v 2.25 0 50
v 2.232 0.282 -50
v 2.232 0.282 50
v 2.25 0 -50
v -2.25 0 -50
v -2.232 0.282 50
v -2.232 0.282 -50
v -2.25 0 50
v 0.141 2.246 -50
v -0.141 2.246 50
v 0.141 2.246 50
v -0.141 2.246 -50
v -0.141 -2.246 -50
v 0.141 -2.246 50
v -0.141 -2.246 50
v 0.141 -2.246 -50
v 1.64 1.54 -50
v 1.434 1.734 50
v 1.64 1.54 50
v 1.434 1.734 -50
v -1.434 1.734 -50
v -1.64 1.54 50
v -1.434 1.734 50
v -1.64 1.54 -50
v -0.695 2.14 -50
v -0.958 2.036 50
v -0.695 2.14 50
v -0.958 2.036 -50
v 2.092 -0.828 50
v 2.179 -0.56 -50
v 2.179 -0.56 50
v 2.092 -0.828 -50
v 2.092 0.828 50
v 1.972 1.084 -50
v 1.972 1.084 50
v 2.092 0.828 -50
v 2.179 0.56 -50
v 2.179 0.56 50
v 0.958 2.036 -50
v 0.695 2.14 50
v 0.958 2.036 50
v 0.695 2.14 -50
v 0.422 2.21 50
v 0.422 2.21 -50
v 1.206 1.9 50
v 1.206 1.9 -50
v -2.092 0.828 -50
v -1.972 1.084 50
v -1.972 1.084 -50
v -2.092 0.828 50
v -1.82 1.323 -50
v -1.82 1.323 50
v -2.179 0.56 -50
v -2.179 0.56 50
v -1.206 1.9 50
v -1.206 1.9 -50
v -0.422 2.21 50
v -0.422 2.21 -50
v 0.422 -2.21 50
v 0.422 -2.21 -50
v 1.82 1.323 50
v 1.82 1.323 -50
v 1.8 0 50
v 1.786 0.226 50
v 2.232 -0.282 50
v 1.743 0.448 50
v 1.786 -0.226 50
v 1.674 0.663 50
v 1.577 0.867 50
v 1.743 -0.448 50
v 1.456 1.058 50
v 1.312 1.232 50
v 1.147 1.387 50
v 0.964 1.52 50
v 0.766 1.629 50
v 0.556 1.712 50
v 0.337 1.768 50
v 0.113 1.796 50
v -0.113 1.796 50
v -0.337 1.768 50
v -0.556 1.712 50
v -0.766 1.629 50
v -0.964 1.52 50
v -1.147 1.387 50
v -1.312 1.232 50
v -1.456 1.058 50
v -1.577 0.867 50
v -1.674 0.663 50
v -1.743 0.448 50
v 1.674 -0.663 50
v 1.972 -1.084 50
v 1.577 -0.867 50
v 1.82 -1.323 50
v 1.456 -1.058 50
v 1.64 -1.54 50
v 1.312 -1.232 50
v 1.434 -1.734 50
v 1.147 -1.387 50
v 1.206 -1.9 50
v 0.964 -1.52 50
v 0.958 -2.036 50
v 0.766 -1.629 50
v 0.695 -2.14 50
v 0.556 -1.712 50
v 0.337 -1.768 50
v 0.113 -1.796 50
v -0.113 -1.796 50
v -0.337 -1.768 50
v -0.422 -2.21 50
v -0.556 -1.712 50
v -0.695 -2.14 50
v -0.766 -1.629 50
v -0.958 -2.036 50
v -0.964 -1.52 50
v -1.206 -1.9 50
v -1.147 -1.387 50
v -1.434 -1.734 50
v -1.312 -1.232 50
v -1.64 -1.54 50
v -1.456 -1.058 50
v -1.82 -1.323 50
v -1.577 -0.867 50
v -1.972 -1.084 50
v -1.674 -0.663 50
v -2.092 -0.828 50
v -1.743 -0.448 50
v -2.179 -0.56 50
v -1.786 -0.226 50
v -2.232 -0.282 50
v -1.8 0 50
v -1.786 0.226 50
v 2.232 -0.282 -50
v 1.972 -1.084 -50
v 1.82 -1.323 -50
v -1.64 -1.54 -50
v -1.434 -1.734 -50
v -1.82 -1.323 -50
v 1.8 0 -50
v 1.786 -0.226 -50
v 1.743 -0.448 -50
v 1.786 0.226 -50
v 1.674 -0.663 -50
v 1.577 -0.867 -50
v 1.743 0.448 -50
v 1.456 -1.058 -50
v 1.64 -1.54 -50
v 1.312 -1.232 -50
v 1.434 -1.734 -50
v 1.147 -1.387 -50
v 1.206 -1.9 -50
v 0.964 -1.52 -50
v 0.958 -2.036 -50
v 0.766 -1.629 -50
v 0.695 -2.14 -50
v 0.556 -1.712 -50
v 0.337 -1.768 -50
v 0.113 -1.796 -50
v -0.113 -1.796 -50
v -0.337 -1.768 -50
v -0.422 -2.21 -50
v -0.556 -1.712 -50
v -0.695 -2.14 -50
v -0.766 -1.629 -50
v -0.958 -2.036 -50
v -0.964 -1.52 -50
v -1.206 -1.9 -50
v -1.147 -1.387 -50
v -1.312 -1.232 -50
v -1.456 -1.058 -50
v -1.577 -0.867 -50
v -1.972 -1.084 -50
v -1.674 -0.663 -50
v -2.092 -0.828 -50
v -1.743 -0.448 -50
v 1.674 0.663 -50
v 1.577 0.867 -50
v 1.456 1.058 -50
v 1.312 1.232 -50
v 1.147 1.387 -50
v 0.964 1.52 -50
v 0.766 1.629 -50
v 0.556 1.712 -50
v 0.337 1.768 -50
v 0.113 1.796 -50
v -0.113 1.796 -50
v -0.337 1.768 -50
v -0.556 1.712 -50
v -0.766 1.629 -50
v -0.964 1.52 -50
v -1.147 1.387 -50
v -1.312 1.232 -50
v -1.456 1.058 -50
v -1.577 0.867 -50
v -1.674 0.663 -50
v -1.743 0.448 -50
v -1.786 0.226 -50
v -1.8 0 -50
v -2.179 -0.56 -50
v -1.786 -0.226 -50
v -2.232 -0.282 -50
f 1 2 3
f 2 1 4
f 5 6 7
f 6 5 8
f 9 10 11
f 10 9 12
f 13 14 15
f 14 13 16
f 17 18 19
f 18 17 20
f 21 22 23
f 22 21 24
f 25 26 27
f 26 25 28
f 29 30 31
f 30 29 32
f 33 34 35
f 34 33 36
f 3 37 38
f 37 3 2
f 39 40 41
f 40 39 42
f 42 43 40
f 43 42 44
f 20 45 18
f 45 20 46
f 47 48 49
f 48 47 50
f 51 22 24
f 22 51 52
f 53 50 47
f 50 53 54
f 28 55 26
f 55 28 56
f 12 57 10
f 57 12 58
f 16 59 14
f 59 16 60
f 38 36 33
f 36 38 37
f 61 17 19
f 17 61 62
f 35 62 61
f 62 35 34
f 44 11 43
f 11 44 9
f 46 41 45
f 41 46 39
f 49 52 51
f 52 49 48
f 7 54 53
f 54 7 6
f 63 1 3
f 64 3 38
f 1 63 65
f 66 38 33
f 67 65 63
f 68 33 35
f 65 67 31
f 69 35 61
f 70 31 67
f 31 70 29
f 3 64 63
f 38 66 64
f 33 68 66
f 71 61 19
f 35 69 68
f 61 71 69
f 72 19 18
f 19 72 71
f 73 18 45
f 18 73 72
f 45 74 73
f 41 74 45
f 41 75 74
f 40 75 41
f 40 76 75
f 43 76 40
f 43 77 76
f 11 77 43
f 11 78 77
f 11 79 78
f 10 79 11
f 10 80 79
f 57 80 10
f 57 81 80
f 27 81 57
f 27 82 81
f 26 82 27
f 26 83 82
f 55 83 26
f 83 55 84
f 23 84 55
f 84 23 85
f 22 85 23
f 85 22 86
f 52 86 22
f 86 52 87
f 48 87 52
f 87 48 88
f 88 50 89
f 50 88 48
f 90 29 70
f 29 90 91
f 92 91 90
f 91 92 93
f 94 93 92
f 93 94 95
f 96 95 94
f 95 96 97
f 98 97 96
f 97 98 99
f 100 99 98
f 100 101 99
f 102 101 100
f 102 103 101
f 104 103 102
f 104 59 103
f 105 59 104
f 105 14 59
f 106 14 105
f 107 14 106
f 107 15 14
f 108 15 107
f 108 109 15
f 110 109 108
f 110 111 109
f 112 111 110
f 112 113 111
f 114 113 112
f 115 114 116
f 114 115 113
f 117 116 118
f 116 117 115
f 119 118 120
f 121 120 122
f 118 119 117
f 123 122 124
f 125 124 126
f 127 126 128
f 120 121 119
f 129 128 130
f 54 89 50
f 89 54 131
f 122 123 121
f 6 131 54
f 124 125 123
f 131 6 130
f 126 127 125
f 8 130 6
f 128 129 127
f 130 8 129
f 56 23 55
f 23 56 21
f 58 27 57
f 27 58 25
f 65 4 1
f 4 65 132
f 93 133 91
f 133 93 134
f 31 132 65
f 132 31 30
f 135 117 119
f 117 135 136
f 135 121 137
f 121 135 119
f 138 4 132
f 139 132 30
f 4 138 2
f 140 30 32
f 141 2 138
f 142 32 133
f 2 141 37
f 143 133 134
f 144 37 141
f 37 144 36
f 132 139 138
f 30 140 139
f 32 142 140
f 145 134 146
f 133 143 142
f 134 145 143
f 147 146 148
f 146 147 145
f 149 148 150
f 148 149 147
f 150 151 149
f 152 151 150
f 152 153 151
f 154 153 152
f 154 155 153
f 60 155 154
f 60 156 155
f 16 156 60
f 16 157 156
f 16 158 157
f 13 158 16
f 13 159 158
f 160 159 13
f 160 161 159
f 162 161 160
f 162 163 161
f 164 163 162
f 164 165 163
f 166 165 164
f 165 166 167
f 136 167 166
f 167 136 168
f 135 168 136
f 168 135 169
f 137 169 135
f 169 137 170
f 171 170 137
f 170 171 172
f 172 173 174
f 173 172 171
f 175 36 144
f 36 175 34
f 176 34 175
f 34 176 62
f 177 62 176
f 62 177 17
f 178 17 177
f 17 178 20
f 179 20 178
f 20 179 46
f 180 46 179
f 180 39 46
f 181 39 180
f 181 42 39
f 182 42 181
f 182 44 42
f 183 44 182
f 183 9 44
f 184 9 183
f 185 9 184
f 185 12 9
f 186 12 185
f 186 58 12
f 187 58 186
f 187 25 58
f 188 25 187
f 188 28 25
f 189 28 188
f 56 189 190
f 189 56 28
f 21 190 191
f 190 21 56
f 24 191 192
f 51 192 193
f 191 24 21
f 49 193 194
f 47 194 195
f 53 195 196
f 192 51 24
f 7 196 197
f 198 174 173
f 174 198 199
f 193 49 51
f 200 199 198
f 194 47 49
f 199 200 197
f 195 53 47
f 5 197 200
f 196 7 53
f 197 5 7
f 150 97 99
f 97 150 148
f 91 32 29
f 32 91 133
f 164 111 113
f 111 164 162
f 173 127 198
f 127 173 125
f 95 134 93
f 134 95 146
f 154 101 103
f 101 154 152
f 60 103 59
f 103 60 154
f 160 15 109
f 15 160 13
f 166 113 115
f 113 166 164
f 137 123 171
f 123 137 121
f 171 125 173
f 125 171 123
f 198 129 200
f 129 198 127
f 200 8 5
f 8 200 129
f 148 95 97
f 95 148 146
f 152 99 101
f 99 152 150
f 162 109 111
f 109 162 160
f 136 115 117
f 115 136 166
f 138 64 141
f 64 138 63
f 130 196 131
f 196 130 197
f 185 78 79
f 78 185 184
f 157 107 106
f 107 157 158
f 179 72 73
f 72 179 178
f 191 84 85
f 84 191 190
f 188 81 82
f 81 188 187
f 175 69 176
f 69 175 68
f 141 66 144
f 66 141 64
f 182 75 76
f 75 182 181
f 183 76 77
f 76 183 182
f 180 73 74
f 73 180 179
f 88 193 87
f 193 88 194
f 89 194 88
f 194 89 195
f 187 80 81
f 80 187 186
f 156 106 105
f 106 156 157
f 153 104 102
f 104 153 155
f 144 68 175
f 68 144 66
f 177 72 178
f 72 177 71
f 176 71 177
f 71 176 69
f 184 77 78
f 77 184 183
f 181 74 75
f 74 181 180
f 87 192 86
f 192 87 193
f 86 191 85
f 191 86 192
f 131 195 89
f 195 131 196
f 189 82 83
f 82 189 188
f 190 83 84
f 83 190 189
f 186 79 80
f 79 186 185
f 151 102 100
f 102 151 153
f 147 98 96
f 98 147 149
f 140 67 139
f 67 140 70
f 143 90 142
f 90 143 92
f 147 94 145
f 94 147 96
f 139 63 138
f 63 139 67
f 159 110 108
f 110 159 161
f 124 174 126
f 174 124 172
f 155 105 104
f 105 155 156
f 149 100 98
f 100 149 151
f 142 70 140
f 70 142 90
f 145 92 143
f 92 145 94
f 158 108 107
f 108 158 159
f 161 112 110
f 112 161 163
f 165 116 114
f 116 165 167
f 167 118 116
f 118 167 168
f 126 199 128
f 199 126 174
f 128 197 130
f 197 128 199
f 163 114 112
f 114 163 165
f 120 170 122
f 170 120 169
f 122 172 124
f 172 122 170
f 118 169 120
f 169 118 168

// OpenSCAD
$fn = 50;


difference() {
	union() {
		translate(v = [0, 0, -50.0000000000]) {
			cylinder(h = 100, r = 2.2500000000);
		}
	}
	union() {
		translate(v = [0, 0, -100.0000000000]) {
			cylinder(h = 200, r = 1.8000000000);
		}
	}
}
